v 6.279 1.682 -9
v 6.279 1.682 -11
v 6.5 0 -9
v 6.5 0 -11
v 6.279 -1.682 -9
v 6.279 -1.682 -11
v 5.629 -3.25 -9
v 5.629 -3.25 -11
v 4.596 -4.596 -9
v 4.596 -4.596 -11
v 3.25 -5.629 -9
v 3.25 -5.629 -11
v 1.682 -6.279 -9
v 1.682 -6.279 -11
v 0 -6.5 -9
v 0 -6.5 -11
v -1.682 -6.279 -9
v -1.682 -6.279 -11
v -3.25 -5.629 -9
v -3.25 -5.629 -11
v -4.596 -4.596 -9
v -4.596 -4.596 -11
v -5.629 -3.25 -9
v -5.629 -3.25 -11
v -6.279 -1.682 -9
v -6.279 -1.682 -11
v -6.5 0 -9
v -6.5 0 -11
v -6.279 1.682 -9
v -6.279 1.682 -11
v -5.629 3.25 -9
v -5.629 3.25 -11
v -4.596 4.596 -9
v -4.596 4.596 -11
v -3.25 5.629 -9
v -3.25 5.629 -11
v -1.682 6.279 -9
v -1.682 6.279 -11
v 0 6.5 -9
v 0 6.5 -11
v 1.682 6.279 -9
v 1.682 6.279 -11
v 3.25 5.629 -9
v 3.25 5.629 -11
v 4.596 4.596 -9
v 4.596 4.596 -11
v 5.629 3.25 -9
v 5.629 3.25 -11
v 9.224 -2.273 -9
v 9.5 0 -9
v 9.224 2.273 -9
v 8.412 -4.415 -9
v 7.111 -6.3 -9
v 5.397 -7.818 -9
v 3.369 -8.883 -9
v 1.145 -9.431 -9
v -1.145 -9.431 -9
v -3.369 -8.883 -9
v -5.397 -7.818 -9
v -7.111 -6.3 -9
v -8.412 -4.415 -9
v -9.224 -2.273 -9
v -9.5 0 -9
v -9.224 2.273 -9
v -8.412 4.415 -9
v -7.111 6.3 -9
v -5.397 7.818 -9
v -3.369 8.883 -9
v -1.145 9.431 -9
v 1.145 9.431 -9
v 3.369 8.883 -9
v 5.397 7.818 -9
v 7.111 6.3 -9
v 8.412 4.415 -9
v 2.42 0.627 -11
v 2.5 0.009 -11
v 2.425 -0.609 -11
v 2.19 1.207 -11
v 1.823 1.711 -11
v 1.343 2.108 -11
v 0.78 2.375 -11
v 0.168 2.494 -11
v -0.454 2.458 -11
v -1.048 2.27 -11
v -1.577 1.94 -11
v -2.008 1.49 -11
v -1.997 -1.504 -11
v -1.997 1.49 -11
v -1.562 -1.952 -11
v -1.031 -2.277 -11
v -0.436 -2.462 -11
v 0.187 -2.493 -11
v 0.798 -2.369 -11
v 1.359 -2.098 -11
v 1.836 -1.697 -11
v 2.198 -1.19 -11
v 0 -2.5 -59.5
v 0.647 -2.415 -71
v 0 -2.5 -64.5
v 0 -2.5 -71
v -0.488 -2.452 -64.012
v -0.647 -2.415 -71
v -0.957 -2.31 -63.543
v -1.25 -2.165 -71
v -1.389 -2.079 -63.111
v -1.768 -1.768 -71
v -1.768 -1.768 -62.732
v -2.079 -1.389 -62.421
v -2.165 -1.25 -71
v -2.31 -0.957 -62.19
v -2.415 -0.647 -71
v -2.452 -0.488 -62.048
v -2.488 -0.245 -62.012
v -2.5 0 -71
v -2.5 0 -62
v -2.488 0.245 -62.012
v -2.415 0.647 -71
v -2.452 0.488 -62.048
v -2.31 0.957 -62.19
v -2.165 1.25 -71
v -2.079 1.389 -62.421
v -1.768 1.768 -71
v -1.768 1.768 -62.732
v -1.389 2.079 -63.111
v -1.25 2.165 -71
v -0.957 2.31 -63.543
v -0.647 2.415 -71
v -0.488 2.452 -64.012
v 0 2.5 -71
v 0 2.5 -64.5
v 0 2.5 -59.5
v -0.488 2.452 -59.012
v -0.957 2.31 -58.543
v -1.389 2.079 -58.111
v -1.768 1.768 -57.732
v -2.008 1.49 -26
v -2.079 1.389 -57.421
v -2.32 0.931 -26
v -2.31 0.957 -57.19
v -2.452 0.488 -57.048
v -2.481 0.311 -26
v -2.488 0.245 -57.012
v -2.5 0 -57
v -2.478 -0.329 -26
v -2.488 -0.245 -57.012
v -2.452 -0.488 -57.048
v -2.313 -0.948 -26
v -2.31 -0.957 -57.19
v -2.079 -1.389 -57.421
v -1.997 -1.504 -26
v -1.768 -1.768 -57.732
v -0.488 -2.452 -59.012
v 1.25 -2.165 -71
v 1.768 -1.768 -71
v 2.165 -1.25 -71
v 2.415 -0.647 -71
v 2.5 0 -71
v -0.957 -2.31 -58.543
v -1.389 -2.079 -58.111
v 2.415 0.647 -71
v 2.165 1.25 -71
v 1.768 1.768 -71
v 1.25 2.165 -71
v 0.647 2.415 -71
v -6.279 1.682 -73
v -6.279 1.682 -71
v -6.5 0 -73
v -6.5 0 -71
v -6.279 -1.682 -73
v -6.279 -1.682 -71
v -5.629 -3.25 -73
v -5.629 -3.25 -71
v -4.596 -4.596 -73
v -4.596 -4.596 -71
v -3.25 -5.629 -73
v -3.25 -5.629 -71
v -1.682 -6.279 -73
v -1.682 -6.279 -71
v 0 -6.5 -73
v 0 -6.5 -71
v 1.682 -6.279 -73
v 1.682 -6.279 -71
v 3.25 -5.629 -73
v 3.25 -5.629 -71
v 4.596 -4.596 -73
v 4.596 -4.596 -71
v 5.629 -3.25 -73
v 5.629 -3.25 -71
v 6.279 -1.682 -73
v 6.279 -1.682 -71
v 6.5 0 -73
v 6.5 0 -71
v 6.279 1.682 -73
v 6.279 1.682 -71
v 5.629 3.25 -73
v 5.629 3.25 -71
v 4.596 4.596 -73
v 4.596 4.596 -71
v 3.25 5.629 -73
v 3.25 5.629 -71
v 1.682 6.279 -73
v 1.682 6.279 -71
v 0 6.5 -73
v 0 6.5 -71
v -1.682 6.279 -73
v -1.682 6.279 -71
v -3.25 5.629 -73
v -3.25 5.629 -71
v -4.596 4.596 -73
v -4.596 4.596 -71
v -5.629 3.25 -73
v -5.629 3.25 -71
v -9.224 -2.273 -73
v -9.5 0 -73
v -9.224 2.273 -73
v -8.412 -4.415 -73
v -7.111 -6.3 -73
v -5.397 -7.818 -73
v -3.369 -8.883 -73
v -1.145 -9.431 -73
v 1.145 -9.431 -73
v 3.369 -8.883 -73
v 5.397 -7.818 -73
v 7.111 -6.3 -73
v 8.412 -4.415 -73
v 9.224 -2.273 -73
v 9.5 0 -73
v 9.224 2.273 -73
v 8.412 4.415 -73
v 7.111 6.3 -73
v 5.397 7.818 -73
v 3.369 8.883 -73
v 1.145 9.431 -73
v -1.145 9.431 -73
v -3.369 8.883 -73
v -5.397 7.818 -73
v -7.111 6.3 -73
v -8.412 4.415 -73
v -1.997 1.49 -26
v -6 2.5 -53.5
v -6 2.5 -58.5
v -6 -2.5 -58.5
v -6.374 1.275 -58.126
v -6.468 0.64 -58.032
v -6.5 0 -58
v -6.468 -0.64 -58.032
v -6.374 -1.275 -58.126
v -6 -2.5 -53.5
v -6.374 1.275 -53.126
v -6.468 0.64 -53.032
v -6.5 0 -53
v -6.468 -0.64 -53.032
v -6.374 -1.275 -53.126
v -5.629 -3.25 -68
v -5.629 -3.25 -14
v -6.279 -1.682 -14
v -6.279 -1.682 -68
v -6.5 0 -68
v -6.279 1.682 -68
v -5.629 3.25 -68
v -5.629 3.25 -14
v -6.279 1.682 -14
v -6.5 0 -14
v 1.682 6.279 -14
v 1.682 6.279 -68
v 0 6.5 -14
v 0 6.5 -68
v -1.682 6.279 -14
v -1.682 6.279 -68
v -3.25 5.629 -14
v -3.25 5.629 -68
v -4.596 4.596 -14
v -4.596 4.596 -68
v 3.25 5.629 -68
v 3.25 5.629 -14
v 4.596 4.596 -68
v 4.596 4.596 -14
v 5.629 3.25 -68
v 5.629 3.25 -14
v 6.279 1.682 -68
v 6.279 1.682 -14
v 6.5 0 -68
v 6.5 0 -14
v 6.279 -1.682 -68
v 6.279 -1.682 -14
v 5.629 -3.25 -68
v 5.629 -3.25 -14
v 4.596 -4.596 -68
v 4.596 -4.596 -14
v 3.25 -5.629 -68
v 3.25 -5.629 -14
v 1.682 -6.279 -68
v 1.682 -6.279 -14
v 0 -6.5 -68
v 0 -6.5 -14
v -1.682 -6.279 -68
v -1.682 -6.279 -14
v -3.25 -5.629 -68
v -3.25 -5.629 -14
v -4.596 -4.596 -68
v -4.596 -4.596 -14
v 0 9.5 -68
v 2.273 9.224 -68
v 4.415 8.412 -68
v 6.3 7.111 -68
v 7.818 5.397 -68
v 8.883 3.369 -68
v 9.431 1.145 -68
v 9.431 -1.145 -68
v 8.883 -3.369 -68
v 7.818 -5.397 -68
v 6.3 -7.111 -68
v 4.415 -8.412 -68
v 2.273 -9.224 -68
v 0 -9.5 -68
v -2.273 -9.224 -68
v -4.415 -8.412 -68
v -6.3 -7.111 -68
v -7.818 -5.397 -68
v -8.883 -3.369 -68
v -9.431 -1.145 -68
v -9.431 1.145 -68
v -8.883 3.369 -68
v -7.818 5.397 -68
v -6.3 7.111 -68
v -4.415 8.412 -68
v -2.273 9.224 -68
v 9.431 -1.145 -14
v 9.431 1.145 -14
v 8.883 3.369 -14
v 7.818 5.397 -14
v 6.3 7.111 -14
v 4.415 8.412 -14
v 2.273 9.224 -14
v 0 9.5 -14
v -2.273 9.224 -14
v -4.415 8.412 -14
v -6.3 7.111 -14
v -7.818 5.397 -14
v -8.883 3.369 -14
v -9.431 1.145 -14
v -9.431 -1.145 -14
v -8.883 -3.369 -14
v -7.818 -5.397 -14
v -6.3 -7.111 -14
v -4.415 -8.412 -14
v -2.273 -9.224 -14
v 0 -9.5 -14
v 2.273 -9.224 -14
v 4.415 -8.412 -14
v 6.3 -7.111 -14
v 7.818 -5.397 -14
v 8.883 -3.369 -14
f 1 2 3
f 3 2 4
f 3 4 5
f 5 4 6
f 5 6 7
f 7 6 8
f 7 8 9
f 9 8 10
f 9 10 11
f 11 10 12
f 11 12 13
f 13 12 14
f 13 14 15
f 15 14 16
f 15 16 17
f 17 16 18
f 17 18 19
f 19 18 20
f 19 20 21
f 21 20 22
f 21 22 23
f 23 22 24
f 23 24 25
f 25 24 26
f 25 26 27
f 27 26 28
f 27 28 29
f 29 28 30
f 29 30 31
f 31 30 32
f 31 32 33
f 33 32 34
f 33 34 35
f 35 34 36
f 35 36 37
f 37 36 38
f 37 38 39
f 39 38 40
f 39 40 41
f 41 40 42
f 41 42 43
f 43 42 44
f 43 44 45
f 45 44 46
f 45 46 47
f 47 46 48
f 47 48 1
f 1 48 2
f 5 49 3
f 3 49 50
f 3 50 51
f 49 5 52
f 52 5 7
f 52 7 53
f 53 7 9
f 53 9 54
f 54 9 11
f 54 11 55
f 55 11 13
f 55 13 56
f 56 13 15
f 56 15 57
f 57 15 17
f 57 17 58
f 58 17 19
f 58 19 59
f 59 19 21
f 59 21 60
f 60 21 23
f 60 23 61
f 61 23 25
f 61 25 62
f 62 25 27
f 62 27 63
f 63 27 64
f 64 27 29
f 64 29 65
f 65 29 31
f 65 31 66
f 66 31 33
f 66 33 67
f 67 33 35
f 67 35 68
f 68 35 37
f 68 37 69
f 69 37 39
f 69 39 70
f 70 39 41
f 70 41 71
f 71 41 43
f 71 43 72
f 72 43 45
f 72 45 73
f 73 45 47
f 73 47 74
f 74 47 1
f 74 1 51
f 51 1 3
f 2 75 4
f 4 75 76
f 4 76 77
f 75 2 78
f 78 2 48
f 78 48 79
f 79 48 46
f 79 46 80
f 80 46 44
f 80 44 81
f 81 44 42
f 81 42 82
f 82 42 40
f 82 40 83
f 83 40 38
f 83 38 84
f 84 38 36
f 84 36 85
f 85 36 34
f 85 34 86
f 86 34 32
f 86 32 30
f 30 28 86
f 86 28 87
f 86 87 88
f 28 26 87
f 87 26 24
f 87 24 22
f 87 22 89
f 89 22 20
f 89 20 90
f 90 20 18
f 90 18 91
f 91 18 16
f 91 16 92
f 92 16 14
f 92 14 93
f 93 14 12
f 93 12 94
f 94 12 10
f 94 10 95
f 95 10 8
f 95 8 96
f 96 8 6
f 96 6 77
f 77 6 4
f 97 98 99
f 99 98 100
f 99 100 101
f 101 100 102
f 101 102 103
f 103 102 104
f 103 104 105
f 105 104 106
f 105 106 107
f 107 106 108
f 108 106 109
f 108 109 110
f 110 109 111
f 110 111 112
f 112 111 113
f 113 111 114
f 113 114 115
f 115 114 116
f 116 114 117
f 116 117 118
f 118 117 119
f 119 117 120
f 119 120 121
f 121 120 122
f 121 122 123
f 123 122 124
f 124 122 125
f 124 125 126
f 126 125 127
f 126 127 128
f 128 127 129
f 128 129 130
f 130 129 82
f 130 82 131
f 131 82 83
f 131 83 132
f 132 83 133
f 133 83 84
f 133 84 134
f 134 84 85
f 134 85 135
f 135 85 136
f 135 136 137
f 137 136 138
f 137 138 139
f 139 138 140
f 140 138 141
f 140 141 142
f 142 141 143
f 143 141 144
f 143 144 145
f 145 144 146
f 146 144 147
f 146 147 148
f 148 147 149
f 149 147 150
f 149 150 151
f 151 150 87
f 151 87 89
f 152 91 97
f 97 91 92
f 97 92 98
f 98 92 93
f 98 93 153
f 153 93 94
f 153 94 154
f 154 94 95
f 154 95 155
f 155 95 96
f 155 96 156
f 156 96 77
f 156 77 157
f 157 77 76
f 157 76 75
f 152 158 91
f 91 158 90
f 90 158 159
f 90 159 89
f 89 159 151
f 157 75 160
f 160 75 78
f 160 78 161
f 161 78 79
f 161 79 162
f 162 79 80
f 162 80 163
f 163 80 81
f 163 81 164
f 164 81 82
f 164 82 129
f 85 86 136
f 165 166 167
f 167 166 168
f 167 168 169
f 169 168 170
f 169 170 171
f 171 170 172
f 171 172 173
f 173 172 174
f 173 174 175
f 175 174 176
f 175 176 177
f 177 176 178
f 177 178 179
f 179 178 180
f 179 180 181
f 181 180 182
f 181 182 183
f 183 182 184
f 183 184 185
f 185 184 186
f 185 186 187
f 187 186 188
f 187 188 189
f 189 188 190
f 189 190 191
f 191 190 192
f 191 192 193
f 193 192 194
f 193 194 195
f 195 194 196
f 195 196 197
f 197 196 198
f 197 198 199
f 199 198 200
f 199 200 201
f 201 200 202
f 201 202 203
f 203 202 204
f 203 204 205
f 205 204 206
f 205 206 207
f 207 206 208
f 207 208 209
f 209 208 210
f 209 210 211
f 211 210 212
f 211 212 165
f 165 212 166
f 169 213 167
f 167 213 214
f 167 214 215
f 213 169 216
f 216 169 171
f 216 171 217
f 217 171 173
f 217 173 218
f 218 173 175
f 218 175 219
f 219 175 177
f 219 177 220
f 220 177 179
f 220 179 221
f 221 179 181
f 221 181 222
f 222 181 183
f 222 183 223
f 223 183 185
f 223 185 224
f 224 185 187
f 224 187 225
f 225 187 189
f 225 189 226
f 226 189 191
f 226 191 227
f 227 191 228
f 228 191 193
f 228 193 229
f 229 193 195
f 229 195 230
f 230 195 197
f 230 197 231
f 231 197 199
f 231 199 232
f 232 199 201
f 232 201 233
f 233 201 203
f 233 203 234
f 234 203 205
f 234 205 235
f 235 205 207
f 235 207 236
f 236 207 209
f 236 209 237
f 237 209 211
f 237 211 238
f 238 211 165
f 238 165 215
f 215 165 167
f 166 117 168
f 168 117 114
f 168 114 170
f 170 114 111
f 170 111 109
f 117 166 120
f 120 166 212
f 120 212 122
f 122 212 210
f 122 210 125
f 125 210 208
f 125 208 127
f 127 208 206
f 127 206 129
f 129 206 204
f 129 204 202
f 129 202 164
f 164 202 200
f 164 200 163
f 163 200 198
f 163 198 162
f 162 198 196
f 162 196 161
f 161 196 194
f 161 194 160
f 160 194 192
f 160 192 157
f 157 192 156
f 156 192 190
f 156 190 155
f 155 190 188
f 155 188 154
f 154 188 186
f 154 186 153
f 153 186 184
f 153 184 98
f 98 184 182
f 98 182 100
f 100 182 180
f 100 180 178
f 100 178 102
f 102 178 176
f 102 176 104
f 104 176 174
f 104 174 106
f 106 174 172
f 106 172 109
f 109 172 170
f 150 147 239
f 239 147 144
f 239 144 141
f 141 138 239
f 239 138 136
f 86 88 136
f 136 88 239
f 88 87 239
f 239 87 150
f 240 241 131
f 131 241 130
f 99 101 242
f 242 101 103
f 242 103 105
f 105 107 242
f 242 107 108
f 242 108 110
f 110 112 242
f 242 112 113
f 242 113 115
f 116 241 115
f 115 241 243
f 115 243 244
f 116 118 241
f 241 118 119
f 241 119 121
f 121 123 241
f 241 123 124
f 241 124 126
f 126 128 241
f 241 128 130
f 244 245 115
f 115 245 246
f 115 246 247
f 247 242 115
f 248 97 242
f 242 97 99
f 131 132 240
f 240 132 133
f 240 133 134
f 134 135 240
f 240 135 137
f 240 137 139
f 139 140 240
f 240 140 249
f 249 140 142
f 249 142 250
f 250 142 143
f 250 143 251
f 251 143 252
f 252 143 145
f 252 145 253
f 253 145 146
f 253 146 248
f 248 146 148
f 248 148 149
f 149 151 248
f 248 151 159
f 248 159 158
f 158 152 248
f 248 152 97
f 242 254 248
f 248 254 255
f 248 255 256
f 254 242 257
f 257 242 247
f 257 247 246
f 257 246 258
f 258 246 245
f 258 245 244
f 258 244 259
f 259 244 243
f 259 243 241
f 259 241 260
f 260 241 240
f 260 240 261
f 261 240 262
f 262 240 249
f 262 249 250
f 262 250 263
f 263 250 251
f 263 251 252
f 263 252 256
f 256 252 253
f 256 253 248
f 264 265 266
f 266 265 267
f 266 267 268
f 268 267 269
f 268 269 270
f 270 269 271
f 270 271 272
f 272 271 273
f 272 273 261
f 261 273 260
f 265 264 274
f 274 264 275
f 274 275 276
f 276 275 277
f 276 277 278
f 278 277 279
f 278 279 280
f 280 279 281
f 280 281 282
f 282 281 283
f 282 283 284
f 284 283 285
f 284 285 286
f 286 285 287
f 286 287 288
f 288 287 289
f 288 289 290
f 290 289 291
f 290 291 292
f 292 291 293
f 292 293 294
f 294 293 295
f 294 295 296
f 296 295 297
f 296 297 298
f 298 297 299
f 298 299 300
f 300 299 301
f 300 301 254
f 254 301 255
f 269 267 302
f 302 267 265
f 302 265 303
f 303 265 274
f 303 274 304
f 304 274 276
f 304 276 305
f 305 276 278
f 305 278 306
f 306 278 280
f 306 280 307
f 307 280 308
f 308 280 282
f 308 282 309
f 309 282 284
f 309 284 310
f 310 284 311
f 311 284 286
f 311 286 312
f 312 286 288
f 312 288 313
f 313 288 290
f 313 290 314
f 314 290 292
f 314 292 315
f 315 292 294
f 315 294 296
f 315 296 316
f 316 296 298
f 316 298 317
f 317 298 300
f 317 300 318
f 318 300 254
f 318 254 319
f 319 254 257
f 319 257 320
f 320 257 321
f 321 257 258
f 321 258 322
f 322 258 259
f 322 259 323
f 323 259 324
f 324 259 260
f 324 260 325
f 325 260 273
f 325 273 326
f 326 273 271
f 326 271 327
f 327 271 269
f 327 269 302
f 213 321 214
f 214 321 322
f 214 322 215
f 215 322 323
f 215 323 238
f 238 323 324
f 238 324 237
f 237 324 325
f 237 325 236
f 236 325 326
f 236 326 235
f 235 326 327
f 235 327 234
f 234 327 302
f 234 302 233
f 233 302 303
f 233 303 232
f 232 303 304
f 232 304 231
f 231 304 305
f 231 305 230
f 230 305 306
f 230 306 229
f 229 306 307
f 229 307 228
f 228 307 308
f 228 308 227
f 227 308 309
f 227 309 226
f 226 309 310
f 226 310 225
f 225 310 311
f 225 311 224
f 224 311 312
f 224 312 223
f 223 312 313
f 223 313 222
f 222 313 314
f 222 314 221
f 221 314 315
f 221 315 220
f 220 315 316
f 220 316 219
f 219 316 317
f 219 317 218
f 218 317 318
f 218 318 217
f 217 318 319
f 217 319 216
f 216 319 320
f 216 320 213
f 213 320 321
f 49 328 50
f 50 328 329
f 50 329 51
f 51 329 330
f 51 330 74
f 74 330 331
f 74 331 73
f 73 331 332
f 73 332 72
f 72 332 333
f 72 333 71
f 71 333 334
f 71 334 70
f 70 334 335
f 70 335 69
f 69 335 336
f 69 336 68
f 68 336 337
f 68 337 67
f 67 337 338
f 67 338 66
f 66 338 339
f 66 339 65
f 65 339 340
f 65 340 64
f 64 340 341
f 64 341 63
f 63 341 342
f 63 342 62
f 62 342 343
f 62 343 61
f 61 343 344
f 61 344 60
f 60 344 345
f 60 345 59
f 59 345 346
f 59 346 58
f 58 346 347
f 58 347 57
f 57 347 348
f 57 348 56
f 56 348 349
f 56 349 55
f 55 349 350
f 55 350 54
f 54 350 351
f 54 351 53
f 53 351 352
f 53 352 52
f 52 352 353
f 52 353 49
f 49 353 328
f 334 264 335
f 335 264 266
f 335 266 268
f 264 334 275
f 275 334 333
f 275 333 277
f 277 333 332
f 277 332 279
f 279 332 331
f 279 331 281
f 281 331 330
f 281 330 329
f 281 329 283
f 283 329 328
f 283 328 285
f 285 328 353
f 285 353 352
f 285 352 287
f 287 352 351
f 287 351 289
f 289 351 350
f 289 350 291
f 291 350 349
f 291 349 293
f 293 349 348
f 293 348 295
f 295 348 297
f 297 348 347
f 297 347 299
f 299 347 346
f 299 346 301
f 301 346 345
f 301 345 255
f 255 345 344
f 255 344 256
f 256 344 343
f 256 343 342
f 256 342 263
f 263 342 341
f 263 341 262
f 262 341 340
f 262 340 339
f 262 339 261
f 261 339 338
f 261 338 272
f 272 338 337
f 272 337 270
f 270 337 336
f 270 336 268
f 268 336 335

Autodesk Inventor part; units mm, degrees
ref_plane "YZ Plane" through (0, 0, 0) normal (1, 0, 0) x (0, 1, 0)
ref_plane "XZ Plane" through (0, 0, 0) normal (0, 1, 0) x (-1, 0, 0)
ref_plane "XY Plane" through (0, 0, 0) normal (0, 0, 1) x (1, 0, 0)
sketch "Sketch1" plane through (0, 0, 0) normal (1, 0, 0) x (0, 1, 0)
  line L0 (0, 0) -> (2.5, 0)
  line L1 (0, 0) -> (4, 0)
  line L2 (2.5, 0) -> (2.5, -7)
  line L3 (2.5, -7) -> (0, -7)
  line L4 (0, -7) -> (20, -7)
  line L5 (4, 0) -> (4, -7)
  line L6 (2.5, -7) -> (2.5, -41)
  line L7 (20, -7) -> (20, -11)
  line L8 (20, -11) -> (2.5, -11)
  line L9 (20, -7) -> (22.5, -7)
  line L10 (22.5, -7) -> (22.5, -11)
  line L11 (22.5, -11) -> (20, -11)
  line L12 (20, -11) -> (20, -7)
  line L13 (20, -7) -> (20, -11)
  line L14 (4, 0) -> (2.5, 0)
  line L15 (2.5, 0) -> (2.5, -11)
  line L16 (2.5, -11) -> (4, -11)
  line L17 (4, -11) -> (4, 0)
  line L18 (2.5, -11) -> (22.5, -11)
  line L19 (22.5, -11) -> (22.5, -7)
  line L20 (22.5, -7) -> (2.5, -7)
  line L21 (2.5, -7) -> (2.5, -11)
  line L22 (2.5, -11) -> (6.5, -11)
  line L23 (0, -7) -> (0, -105.9451)
  line L24 (2.5, -41) -> (25, -41)
  line L25 (0, -82) -> (2.5, -82)
  line L26 (0, -82) -> (4, -82)
  line L27 (2.5, -82) -> (2.5, -75)
  line L28 (2.5, -75) -> (0, -75)
  line L29 (0, -75) -> (20, -75)
  line L30 (4, -82) -> (4, -75)
  line L31 (20, -75) -> (20, -71)
  line L32 (20, -71) -> (2.5, -71)
  line L33 (20, -75) -> (22.5, -75)
  line L34 (22.5, -75) -> (22.5, -71)
  line L35 (22.5, -71) -> (20, -71)
  line L36 (20, -71) -> (20, -75)
  line L37 (20, -75) -> (20, -71)
  line L38 (4, -82) -> (2.5, -82)
  line L39 (2.5, -82) -> (2.5, -71)
  line L40 (2.5, -71) -> (4, -71)
  line L41 (4, -71) -> (4, -82)
  line L42 (2.5, -71) -> (22.5, -71)
  line L43 (22.5, -71) -> (22.5, -75)
  line L44 (22.5, -75) -> (2.5, -75)
  line L45 (2.5, -75) -> (2.5, -71)
  line L46 (2.5, -71) -> (6.5, -71)
  line L47 (2.5, -11) -> (6.5, -11)
  line L48 (6.5, -11) -> (6.5, -71)
  line L49 (6.5, -71) -> (2.5, -71)
  line L50 (2.5, -71) -> (2.5, -11)
  line L51 (6.5, -11) -> (9.5, -11)
  line L52 (9.5, -11) -> (9.5, -14)
  line L53 (9.5, -14) -> (6.5, -14)
  line L54 (6.5, -14) -> (6.5, -11)
  line L55 (6.5, -71) -> (9.5, -71)
  line L56 (9.5, -71) -> (9.5, -68)
  line L57 (9.5, -68) -> (6.5, -68)
  line L58 (6.5, -68) -> (6.5, -71)
  dimension "d1" = 2.5
  dimension "d2" = 4
  dimension "d3" = 7
  dimension "d4" = 20
  dimension "d5" = 34
  dimension "d9" = 4
  dimension "d12" = 2.5
  dimension "d13" = 4
  dimension "d55" = 22.5
  dimension "d56" = 4
  dimension "d80" = 3
  dimension "d81" = 3
  dimension "d82" = 3
  dimension "d83" = 3
revolve "Revolution2" add sketch "Sketch1" angle 360 about axis through (0, 0, -7) along (0, 0, -1) contours L1 L5 L4 L2 | L4 L17 L8 L6 | L4 L7 L8 L17 | L8 L48 L24 L6 | L9 L10 L11 L7 | L24 L48 L32 L50 | L8 L52 L53 L48 | L29 L30 L26 L27 | L39 L32 L41 L29 | L41 L32 L31 L29 | L57 L56 L32 L48 | L31 L35 L34 L33
sketch "Sketch6" plane through (0, 0, 0) normal (0, 1, 0) x (-1, 0, 0)
  line L0 (-2.5, -82) -> (2.5, -82) projected
  line L1 (0, -82) -> (0, -62)
  line L2 (0, -82) -> (20, -82) construction
  line L3 (0, -65) -> (15, -65) construction
  line L4 (0, -59) -> (15, -59) construction
  line L5 (10.6066, -48.3934) -> (10.6066, -54.3934)
  line L6 (0, -65) -> (0, -59)
  line L7 (0, -62) -> (0, -59.5)
  line L8 (0, -59.5) -> (10.6066, -48.8934)
  line L9 (10.6066, -48.8934) -> (10.6066, -53.8934)
  line L10 (10.6066, -53.8934) -> (0, -64.5)
  line L11 (0, -59.5) -> (0, -64.5)
  point P0 (0, 0)
  dimension "d64" = 20
  dimension "d65" = 90
  dimension "d69" = 15
  dimension "d71" = 15
  dimension "d75" = 2.5
  dimension "d76" = 5
extrude "Extrusion6" cut sketch "Sketch6" along normal mid plane 5
sketch "Sketch7" plane through (0, 0, 0) normal (0, 0, 1) x (1, 0, 0)
  arc A0 (-1.9966, -1.5104) -> (-1.9966, 1.4896) centre (0.0034, -0.0104) ccw
  line L0 (-1.9966, -0.0104) -> (-1.9966, 1.4896)
  line L1 (-1.9966, -0.0104) -> (-1.9966, -1.5104)
  line L2 (-1.9966, 1.4896) -> (-1.9966, -2.007)
  line L3 (-1.9966, -2.007) -> (-3.9862, -2.007)
  line L4 (-3.9862, -2.007) -> (-3.9862, 1.4896)
  line L5 (-3.9862, 1.4896) -> (-1.9966, 1.4896)
  line L6 (-1.9966, -1.5104) -> (-3.2272, -1.5104)
  line L7 (-3.2272, -1.5104) -> (-3.2272, 1.4896)
  line L8 (-3.2272, 1.4896) -> (-1.9966, 1.4896)
  line L9 (-1.9966, 1.4896) -> (-1.9966, -1.5104)
  point P0 (0, 0)
  point P1 (0, 0)
  dimension "d77" = 5
extrude "Extrusion7" add sketch "Sketch7" against normal blind 26 contours L6 L7 L5 L0 L1
sketch "Sketch11" plane through (0, 0, -71) normal (0, 0, 1) x (1, 0, 0)
  circle A0 centre (0, 0) radius 2.5 projected
  circle A1 centre (0, 0) radius 9.5
  arc A2 (0, 2.5) -> (0, -2.5) centre (0, 0) ccw projected
  circle A3 centre (0, 0) radius 46.837
  point P0 (0, 0)
  dimension "d90" = 19
extrude "Extrusion11" cut sketch "Sketch11" against normal blind 100 contours A0 | A1 | A3
sketch "Sketch12" plane through (0, 0, -71) normal (0, 0, -1) x (-1, 0, 0)
  circle A0 centre (0, 0) radius 9.5 projected
  circle A1 centre (0, 0) radius 9.5
  circle A2 centre (0, 0) radius 6.5
  point P0 (0, 0)
extrude "Extrusion12" add sketch "Sketch12" along normal blind 2
sketch "Sketch13" plane through (0, 0, -11) normal (0, 0, -1) x (-1, 0, 0)
  circle A0 centre (0, 0) radius 46.586
extrude "Extrusion13" cut sketch "Sketch13" against normal blind 30
sketch "Sketch14" plane through (0, 0, -11) normal (0, 0, 1) x (1, 0, 0)
  circle A0 centre (0, 0) radius 9.5
  circle A1 centre (0, 0) radius 9.5
  arc A2 (0, 2.5) -> (0, -2.5) centre (0, 0) ccw projected
  circle A3 centre (0, 0) radius 6.5
  dimension "d97" = 19
  dimension "d98" = 13
extrude "Extrusion14" add sketch "Sketch14" along normal blind 2
properties part number "Spool_revB3"
